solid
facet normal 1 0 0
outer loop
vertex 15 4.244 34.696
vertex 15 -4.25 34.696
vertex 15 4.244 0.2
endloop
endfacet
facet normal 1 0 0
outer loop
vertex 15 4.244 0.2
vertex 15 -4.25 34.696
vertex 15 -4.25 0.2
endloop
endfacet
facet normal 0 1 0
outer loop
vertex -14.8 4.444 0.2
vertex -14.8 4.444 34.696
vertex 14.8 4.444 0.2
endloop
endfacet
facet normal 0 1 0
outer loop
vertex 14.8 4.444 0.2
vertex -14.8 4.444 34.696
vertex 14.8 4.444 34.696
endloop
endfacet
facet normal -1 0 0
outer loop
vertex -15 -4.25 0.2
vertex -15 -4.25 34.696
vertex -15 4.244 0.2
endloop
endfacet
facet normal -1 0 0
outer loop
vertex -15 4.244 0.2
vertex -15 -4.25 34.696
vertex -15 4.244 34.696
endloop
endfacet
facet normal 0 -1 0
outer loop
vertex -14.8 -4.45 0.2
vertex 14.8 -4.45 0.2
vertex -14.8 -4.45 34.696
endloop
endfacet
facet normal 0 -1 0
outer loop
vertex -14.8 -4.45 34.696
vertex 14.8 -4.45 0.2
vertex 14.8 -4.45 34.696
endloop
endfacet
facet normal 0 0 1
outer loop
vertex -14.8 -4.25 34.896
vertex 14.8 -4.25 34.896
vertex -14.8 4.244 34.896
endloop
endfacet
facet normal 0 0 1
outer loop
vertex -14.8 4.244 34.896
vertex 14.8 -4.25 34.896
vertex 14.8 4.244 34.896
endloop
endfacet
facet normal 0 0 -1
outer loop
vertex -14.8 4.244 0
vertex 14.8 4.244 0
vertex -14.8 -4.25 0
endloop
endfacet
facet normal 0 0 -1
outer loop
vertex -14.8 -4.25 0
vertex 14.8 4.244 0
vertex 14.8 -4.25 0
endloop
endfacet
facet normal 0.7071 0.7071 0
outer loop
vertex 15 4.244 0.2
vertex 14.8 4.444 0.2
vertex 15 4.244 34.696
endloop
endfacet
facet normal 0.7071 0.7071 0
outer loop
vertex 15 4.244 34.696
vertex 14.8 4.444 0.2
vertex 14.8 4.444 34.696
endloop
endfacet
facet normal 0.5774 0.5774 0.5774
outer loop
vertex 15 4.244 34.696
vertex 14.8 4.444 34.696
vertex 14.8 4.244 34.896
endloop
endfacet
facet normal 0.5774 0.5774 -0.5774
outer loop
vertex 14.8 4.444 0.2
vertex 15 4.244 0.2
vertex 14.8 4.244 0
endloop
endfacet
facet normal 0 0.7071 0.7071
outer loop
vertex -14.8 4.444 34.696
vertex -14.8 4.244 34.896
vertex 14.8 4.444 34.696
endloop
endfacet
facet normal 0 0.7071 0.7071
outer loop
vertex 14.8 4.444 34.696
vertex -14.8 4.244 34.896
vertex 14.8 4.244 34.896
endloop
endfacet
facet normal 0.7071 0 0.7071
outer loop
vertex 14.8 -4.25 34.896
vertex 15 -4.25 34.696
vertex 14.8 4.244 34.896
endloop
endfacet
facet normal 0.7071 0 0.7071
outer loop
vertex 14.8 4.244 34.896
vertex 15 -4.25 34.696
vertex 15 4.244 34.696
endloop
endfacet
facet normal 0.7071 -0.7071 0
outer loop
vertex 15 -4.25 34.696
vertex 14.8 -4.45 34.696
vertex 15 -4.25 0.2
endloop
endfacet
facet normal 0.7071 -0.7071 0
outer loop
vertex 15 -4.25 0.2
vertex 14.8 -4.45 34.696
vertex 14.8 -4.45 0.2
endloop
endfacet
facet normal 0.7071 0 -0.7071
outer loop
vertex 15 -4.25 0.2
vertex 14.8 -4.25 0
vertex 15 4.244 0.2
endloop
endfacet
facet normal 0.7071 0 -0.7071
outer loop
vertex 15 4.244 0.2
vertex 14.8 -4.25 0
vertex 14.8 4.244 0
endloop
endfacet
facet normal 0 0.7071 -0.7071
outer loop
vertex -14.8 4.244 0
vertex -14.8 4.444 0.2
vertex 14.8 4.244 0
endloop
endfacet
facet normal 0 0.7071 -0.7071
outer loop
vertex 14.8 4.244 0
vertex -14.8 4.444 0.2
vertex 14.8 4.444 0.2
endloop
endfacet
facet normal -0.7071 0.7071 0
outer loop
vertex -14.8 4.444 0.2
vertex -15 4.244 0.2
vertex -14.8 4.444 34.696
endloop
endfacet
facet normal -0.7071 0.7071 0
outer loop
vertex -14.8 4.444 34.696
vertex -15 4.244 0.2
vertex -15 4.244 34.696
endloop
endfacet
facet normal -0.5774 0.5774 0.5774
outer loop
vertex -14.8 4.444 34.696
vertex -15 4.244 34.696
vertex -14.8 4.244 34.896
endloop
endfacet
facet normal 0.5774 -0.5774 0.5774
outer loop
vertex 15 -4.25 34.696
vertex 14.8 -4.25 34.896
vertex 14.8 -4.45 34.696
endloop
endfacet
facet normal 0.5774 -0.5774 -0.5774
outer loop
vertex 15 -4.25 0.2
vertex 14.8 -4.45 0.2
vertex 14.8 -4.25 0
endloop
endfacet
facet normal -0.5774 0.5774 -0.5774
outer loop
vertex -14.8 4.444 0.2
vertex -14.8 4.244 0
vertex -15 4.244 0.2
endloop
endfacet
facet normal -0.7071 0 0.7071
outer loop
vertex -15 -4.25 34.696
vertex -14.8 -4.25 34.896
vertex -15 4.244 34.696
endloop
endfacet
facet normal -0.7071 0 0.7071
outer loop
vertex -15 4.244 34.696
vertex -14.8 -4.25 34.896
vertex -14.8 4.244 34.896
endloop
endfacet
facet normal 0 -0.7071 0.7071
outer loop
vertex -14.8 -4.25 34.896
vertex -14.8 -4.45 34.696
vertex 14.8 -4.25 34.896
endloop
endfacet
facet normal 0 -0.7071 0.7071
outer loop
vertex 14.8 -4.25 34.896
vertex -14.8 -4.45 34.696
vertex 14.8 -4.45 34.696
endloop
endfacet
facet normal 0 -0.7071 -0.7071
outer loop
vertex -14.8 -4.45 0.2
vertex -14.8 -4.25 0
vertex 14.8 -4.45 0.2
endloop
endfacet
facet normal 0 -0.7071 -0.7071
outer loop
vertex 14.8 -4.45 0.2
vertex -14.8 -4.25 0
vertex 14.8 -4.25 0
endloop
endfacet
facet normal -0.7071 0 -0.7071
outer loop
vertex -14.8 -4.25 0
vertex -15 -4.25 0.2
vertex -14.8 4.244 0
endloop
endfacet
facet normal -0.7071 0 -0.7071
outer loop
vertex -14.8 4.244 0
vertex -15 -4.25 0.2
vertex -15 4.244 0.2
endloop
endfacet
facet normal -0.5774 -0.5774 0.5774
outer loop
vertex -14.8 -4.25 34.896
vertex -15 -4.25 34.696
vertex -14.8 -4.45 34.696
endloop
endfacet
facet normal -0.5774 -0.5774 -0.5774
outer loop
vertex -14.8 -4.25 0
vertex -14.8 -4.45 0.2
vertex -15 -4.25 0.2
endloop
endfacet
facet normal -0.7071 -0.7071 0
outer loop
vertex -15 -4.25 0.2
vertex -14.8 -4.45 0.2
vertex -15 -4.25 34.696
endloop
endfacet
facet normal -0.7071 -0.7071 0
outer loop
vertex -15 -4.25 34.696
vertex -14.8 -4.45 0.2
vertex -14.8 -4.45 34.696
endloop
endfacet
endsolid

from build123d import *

# Parameters (mm, degrees)
SKICA1_W                = 30
SKICA1_H                = 8.9
P_IDAT_VYSUNUT_M1_DEPTH = 34.896
ZKOSEN_1_SIZE           = 0.2


with BuildPart() as part:
    # Skica1 → Přidat vysunutím1 (new body)
    with BuildSketch(Plane.XY):
        Rectangle(SKICA1_W, SKICA1_H)
    extrude(amount=P_IDAT_VYSUNUT_M1_DEPTH)

    # Zkosení1
    zkosen_1_edges = [part.edges().sort_by_distance(p)[0] for p in [
        (-15, 0, 34.896),
        (0, -4.45, 34.896),
        (15, 0, 34.896),
        (0, -4.45, 0),
        (-15, 0, 0),
        (0, 4.45, 0),
        (15, 0, 0),
        (15, -4.45, 17.448),
        (-15, -4.45, 17.448),
        (-15, 4.45, 17.448),
        (15, 4.45, 17.448),
        (0, 4.45, 34.896),
    ]]
    chamfer(zkosen_1_edges, length=ZKOSEN_1_SIZE)


solid = part.part
